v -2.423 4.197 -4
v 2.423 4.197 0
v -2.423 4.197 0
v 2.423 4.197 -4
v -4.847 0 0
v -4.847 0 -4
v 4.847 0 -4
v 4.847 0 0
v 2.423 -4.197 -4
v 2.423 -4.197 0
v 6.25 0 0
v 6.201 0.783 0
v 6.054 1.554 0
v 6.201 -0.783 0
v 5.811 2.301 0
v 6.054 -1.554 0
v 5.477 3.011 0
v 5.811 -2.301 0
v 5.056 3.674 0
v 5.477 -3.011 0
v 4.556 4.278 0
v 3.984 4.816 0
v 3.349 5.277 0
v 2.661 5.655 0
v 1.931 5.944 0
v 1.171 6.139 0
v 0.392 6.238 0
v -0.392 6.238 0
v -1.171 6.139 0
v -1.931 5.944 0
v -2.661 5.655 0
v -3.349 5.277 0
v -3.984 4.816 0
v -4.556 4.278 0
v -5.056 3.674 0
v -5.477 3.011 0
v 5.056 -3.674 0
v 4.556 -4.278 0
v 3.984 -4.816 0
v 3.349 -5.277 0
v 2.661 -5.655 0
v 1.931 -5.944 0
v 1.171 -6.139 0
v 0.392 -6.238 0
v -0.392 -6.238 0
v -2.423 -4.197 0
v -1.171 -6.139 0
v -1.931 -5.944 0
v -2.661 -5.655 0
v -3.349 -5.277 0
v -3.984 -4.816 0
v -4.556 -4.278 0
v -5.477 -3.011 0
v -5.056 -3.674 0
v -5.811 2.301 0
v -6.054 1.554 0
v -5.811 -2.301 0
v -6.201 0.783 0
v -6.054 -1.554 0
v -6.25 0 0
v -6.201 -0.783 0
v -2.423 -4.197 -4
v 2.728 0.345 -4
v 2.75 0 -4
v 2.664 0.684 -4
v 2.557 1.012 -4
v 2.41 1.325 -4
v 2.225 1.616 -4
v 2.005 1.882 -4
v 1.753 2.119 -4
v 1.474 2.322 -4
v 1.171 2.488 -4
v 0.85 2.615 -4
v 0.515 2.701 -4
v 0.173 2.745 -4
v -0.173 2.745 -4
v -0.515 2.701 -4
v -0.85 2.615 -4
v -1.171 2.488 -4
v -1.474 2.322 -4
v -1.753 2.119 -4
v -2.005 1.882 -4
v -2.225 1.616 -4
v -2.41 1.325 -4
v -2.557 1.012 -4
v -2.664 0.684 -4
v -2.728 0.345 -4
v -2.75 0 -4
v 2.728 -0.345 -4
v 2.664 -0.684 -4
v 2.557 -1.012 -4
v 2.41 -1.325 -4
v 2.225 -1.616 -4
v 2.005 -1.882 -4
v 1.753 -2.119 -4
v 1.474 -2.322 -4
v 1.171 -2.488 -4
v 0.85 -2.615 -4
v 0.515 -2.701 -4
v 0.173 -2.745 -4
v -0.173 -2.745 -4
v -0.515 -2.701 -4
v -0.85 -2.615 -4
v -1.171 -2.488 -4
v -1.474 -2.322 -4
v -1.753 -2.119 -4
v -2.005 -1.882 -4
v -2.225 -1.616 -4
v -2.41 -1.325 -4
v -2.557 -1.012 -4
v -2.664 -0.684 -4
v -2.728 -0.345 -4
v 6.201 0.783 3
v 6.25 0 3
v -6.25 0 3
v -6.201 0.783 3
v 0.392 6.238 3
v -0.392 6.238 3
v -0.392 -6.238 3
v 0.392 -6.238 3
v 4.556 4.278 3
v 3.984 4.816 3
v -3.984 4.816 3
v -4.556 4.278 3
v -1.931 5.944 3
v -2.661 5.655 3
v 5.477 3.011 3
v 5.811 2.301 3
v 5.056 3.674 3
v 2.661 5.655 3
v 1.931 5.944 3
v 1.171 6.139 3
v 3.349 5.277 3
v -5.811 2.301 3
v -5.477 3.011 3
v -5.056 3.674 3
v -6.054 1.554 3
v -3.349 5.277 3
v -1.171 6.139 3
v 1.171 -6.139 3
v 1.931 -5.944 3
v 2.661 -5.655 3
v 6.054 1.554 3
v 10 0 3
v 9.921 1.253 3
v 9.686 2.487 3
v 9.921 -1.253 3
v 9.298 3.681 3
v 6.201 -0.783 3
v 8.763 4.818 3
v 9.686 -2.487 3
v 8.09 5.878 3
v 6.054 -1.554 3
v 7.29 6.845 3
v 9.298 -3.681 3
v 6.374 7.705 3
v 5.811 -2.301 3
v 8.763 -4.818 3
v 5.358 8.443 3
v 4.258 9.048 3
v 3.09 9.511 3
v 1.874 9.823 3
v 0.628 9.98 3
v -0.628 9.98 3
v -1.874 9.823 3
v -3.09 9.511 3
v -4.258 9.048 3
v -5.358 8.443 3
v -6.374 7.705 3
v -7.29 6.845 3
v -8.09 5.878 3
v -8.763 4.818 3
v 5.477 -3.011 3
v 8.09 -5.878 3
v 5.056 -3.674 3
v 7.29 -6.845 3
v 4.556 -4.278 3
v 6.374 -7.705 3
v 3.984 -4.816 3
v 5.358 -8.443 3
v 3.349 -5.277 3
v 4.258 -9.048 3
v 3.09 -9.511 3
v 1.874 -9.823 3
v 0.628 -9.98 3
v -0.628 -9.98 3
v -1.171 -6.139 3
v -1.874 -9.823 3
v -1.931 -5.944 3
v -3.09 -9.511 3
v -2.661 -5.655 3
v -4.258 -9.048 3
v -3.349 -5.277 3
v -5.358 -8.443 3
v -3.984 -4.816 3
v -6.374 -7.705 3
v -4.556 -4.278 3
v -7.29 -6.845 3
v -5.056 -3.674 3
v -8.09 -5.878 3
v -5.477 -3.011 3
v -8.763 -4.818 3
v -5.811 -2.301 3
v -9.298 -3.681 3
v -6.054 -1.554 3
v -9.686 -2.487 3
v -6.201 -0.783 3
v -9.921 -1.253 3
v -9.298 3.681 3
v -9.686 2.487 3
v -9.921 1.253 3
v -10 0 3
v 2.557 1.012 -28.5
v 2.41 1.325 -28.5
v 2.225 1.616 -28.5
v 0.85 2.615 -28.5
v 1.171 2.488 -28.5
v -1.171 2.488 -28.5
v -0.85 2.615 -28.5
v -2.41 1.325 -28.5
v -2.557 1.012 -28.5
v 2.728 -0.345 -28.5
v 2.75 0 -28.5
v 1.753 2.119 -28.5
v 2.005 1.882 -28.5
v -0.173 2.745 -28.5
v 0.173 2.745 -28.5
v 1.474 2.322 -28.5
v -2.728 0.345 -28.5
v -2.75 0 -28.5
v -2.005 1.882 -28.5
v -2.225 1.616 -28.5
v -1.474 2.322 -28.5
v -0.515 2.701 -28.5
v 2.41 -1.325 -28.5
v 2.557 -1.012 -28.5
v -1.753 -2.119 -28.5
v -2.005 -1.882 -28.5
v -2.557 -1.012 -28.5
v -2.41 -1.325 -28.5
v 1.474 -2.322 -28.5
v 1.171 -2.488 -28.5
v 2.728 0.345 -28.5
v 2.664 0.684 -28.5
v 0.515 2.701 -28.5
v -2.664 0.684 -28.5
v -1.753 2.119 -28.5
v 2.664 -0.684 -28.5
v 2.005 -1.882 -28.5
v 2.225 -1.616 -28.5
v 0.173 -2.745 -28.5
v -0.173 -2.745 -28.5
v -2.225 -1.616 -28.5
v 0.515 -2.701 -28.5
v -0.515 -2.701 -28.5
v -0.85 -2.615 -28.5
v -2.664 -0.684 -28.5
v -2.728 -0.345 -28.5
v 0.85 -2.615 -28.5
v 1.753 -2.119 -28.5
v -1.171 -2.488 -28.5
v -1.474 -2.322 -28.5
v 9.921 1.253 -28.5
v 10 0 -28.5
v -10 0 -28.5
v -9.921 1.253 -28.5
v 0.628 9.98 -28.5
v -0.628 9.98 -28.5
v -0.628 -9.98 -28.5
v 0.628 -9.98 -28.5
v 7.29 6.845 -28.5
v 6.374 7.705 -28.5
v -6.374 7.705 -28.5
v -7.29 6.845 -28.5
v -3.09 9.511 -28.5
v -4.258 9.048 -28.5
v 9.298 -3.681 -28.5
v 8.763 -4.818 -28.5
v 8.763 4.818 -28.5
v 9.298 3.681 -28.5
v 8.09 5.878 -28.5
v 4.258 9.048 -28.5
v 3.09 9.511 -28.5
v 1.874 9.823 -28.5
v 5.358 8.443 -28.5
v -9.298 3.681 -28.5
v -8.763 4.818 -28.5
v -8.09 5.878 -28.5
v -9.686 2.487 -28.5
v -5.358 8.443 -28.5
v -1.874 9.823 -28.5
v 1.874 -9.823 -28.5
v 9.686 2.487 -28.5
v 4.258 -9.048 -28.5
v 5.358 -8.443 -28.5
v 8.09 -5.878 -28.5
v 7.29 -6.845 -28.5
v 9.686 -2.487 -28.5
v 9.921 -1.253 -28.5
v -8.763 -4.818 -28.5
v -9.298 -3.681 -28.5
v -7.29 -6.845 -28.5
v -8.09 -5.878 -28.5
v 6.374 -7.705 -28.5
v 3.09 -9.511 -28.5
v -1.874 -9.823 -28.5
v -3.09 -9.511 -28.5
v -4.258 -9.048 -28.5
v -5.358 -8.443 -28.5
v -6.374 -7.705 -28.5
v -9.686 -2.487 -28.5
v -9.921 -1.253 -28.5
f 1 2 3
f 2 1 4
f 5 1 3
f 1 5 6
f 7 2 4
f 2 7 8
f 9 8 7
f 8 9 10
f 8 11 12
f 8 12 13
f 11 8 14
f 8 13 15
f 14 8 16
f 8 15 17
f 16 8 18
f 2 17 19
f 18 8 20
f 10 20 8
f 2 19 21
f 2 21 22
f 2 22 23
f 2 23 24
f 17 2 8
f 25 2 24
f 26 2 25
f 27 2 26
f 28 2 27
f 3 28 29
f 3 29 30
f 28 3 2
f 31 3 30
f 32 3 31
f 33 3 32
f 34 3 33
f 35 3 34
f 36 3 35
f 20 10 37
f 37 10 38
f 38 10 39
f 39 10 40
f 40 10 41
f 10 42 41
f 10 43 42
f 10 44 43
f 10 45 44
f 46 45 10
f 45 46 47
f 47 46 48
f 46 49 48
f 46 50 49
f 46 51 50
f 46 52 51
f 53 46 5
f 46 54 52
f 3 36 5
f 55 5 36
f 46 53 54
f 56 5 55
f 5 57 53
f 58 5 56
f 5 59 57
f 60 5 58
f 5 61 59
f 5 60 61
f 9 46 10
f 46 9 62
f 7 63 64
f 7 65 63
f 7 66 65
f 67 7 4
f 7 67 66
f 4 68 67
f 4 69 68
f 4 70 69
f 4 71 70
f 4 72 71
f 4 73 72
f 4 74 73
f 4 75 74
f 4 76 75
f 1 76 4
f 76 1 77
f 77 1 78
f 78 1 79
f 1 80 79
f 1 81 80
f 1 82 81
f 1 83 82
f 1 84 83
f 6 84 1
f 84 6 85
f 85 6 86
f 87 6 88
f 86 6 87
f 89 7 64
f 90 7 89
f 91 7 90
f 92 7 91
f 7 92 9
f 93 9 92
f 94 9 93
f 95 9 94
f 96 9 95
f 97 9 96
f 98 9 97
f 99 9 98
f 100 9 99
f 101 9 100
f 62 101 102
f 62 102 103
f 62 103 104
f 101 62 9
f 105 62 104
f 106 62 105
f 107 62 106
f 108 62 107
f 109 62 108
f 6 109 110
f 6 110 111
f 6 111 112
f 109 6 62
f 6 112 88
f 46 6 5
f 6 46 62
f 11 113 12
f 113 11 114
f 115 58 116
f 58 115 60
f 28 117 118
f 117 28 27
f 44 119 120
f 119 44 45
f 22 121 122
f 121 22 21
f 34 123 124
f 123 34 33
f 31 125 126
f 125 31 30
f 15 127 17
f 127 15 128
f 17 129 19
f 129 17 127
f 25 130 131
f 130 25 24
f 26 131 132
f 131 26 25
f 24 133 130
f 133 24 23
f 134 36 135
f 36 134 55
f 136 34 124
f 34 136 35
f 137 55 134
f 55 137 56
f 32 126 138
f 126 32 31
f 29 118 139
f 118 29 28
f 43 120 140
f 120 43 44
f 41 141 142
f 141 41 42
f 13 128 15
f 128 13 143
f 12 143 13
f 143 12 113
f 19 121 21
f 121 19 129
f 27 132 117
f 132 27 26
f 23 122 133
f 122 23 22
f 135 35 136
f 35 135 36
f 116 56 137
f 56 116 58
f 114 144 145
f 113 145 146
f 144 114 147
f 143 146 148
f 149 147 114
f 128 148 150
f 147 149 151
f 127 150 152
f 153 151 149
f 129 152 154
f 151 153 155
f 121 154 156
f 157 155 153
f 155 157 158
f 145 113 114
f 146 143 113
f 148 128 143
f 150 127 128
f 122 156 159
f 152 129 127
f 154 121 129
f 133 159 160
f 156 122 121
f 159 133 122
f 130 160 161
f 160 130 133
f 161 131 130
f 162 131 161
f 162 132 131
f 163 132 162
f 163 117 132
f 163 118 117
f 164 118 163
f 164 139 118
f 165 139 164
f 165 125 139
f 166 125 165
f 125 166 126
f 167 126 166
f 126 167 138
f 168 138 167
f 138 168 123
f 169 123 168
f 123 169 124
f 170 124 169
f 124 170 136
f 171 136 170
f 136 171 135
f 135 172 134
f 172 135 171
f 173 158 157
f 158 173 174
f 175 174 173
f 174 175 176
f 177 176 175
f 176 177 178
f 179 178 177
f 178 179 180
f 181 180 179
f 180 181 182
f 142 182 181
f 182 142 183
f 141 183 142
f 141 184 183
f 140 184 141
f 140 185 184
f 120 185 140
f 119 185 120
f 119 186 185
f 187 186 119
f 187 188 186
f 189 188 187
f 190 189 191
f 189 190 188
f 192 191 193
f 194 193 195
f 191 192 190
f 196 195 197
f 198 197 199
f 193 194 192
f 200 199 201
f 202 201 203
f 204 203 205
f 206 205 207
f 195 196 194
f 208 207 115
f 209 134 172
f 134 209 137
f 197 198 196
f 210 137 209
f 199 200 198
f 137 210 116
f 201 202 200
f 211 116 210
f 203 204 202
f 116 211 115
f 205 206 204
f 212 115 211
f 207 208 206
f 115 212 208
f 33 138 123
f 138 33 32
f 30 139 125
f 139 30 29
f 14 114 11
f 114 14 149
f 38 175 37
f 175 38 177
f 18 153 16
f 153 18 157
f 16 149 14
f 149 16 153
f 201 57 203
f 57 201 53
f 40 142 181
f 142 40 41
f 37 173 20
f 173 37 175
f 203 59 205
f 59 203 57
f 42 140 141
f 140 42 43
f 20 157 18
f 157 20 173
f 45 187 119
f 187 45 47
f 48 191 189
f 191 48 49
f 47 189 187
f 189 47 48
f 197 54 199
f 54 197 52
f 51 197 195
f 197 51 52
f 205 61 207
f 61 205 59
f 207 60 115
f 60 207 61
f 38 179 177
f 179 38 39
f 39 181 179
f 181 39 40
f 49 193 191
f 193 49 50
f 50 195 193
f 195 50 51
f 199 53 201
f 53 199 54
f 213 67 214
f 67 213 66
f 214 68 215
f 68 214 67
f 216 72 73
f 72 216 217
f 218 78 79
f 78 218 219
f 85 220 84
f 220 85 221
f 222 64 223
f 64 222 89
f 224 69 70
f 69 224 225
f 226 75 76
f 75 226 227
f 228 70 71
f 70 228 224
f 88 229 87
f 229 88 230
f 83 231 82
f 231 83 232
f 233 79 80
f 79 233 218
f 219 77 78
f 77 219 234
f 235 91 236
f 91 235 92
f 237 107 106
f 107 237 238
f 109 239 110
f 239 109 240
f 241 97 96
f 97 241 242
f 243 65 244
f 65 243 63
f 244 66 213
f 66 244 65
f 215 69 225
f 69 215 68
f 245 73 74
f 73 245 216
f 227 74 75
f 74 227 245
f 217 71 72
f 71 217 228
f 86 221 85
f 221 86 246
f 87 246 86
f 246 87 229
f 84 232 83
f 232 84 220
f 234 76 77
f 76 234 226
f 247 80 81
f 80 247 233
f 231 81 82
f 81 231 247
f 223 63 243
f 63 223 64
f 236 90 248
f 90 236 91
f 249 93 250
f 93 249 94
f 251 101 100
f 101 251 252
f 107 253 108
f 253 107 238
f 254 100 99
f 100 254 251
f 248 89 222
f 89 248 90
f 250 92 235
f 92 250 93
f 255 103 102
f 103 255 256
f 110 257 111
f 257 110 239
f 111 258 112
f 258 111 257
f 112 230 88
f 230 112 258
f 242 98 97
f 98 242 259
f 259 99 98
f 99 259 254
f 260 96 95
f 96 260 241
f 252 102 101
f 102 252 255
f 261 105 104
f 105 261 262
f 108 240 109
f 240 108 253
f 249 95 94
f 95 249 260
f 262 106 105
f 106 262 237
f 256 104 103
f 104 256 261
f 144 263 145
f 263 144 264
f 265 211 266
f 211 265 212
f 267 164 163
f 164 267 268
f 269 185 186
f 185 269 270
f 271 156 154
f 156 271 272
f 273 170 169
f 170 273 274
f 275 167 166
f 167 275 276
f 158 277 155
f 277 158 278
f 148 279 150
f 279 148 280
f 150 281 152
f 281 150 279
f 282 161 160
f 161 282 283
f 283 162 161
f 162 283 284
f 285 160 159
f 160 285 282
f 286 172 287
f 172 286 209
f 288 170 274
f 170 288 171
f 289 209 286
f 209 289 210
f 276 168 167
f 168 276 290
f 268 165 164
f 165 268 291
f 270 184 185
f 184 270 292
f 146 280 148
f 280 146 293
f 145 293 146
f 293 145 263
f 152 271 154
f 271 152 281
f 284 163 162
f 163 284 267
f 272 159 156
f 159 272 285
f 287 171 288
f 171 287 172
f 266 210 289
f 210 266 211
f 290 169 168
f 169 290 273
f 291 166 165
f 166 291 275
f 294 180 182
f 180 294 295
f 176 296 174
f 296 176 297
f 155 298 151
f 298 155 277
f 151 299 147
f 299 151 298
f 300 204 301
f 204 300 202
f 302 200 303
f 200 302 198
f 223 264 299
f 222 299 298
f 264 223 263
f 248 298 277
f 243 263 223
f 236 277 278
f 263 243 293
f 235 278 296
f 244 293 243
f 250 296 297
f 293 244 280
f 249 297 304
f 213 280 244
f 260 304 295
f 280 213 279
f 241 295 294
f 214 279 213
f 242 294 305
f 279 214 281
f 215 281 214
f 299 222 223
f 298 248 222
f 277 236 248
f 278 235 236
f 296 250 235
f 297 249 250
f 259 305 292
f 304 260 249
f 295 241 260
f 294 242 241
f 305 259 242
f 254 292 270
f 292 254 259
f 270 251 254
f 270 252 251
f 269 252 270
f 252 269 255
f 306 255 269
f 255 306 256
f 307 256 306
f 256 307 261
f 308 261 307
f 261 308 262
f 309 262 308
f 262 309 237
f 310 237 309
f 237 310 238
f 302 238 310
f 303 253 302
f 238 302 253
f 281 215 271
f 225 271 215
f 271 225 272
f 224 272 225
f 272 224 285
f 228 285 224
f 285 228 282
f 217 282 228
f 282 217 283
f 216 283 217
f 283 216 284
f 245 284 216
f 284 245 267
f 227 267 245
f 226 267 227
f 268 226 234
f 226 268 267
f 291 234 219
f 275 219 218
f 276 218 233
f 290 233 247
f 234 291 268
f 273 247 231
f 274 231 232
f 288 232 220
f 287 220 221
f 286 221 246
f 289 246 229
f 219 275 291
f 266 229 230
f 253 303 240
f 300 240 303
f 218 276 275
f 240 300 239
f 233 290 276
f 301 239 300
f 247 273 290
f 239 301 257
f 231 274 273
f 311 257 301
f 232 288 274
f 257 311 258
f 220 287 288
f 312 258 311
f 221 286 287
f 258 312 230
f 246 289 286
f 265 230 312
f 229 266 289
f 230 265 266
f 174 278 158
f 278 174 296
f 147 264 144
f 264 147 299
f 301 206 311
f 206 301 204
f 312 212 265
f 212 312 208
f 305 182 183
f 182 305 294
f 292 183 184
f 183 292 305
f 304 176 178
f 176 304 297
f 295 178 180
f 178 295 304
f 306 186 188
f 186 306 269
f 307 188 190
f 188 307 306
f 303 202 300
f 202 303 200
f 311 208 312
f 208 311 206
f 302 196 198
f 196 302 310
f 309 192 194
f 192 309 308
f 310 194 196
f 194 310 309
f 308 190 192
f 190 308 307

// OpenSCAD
$fn = 50;


difference() {
	union() {
		translate(v = [0, 0, -28.5000000000]) {
			cylinder(h = 31.5000000000, r = 10.0000000000);
		}
	}
	union() {
		translate(v = [0, 0, 0]) {
			rotate(a = [0, 0, 0]) {
				difference() {
					union() {
						translate(v = [0, 0, -4]) {
							linear_extrude(height = 4) {
								polygon(points = [[4.8468000000, 0.0000000000], [2.4234000000, 4.1974519271], [-2.4234000000, 4.1974519271], [-4.8468000000, 0.0000000000], [-2.4234000000, -4.1974519271], [2.4234000000, -4.1974519271]]);
							}
						}
					}
					union();
				}
			}
		}
		#cylinder(h = 3, r = 6.2500000000);
		#translate(v = [0, 0, -100.0000000000]) {
			cylinder(h = 200, r = 2.7500000000);
		}
	}
}
